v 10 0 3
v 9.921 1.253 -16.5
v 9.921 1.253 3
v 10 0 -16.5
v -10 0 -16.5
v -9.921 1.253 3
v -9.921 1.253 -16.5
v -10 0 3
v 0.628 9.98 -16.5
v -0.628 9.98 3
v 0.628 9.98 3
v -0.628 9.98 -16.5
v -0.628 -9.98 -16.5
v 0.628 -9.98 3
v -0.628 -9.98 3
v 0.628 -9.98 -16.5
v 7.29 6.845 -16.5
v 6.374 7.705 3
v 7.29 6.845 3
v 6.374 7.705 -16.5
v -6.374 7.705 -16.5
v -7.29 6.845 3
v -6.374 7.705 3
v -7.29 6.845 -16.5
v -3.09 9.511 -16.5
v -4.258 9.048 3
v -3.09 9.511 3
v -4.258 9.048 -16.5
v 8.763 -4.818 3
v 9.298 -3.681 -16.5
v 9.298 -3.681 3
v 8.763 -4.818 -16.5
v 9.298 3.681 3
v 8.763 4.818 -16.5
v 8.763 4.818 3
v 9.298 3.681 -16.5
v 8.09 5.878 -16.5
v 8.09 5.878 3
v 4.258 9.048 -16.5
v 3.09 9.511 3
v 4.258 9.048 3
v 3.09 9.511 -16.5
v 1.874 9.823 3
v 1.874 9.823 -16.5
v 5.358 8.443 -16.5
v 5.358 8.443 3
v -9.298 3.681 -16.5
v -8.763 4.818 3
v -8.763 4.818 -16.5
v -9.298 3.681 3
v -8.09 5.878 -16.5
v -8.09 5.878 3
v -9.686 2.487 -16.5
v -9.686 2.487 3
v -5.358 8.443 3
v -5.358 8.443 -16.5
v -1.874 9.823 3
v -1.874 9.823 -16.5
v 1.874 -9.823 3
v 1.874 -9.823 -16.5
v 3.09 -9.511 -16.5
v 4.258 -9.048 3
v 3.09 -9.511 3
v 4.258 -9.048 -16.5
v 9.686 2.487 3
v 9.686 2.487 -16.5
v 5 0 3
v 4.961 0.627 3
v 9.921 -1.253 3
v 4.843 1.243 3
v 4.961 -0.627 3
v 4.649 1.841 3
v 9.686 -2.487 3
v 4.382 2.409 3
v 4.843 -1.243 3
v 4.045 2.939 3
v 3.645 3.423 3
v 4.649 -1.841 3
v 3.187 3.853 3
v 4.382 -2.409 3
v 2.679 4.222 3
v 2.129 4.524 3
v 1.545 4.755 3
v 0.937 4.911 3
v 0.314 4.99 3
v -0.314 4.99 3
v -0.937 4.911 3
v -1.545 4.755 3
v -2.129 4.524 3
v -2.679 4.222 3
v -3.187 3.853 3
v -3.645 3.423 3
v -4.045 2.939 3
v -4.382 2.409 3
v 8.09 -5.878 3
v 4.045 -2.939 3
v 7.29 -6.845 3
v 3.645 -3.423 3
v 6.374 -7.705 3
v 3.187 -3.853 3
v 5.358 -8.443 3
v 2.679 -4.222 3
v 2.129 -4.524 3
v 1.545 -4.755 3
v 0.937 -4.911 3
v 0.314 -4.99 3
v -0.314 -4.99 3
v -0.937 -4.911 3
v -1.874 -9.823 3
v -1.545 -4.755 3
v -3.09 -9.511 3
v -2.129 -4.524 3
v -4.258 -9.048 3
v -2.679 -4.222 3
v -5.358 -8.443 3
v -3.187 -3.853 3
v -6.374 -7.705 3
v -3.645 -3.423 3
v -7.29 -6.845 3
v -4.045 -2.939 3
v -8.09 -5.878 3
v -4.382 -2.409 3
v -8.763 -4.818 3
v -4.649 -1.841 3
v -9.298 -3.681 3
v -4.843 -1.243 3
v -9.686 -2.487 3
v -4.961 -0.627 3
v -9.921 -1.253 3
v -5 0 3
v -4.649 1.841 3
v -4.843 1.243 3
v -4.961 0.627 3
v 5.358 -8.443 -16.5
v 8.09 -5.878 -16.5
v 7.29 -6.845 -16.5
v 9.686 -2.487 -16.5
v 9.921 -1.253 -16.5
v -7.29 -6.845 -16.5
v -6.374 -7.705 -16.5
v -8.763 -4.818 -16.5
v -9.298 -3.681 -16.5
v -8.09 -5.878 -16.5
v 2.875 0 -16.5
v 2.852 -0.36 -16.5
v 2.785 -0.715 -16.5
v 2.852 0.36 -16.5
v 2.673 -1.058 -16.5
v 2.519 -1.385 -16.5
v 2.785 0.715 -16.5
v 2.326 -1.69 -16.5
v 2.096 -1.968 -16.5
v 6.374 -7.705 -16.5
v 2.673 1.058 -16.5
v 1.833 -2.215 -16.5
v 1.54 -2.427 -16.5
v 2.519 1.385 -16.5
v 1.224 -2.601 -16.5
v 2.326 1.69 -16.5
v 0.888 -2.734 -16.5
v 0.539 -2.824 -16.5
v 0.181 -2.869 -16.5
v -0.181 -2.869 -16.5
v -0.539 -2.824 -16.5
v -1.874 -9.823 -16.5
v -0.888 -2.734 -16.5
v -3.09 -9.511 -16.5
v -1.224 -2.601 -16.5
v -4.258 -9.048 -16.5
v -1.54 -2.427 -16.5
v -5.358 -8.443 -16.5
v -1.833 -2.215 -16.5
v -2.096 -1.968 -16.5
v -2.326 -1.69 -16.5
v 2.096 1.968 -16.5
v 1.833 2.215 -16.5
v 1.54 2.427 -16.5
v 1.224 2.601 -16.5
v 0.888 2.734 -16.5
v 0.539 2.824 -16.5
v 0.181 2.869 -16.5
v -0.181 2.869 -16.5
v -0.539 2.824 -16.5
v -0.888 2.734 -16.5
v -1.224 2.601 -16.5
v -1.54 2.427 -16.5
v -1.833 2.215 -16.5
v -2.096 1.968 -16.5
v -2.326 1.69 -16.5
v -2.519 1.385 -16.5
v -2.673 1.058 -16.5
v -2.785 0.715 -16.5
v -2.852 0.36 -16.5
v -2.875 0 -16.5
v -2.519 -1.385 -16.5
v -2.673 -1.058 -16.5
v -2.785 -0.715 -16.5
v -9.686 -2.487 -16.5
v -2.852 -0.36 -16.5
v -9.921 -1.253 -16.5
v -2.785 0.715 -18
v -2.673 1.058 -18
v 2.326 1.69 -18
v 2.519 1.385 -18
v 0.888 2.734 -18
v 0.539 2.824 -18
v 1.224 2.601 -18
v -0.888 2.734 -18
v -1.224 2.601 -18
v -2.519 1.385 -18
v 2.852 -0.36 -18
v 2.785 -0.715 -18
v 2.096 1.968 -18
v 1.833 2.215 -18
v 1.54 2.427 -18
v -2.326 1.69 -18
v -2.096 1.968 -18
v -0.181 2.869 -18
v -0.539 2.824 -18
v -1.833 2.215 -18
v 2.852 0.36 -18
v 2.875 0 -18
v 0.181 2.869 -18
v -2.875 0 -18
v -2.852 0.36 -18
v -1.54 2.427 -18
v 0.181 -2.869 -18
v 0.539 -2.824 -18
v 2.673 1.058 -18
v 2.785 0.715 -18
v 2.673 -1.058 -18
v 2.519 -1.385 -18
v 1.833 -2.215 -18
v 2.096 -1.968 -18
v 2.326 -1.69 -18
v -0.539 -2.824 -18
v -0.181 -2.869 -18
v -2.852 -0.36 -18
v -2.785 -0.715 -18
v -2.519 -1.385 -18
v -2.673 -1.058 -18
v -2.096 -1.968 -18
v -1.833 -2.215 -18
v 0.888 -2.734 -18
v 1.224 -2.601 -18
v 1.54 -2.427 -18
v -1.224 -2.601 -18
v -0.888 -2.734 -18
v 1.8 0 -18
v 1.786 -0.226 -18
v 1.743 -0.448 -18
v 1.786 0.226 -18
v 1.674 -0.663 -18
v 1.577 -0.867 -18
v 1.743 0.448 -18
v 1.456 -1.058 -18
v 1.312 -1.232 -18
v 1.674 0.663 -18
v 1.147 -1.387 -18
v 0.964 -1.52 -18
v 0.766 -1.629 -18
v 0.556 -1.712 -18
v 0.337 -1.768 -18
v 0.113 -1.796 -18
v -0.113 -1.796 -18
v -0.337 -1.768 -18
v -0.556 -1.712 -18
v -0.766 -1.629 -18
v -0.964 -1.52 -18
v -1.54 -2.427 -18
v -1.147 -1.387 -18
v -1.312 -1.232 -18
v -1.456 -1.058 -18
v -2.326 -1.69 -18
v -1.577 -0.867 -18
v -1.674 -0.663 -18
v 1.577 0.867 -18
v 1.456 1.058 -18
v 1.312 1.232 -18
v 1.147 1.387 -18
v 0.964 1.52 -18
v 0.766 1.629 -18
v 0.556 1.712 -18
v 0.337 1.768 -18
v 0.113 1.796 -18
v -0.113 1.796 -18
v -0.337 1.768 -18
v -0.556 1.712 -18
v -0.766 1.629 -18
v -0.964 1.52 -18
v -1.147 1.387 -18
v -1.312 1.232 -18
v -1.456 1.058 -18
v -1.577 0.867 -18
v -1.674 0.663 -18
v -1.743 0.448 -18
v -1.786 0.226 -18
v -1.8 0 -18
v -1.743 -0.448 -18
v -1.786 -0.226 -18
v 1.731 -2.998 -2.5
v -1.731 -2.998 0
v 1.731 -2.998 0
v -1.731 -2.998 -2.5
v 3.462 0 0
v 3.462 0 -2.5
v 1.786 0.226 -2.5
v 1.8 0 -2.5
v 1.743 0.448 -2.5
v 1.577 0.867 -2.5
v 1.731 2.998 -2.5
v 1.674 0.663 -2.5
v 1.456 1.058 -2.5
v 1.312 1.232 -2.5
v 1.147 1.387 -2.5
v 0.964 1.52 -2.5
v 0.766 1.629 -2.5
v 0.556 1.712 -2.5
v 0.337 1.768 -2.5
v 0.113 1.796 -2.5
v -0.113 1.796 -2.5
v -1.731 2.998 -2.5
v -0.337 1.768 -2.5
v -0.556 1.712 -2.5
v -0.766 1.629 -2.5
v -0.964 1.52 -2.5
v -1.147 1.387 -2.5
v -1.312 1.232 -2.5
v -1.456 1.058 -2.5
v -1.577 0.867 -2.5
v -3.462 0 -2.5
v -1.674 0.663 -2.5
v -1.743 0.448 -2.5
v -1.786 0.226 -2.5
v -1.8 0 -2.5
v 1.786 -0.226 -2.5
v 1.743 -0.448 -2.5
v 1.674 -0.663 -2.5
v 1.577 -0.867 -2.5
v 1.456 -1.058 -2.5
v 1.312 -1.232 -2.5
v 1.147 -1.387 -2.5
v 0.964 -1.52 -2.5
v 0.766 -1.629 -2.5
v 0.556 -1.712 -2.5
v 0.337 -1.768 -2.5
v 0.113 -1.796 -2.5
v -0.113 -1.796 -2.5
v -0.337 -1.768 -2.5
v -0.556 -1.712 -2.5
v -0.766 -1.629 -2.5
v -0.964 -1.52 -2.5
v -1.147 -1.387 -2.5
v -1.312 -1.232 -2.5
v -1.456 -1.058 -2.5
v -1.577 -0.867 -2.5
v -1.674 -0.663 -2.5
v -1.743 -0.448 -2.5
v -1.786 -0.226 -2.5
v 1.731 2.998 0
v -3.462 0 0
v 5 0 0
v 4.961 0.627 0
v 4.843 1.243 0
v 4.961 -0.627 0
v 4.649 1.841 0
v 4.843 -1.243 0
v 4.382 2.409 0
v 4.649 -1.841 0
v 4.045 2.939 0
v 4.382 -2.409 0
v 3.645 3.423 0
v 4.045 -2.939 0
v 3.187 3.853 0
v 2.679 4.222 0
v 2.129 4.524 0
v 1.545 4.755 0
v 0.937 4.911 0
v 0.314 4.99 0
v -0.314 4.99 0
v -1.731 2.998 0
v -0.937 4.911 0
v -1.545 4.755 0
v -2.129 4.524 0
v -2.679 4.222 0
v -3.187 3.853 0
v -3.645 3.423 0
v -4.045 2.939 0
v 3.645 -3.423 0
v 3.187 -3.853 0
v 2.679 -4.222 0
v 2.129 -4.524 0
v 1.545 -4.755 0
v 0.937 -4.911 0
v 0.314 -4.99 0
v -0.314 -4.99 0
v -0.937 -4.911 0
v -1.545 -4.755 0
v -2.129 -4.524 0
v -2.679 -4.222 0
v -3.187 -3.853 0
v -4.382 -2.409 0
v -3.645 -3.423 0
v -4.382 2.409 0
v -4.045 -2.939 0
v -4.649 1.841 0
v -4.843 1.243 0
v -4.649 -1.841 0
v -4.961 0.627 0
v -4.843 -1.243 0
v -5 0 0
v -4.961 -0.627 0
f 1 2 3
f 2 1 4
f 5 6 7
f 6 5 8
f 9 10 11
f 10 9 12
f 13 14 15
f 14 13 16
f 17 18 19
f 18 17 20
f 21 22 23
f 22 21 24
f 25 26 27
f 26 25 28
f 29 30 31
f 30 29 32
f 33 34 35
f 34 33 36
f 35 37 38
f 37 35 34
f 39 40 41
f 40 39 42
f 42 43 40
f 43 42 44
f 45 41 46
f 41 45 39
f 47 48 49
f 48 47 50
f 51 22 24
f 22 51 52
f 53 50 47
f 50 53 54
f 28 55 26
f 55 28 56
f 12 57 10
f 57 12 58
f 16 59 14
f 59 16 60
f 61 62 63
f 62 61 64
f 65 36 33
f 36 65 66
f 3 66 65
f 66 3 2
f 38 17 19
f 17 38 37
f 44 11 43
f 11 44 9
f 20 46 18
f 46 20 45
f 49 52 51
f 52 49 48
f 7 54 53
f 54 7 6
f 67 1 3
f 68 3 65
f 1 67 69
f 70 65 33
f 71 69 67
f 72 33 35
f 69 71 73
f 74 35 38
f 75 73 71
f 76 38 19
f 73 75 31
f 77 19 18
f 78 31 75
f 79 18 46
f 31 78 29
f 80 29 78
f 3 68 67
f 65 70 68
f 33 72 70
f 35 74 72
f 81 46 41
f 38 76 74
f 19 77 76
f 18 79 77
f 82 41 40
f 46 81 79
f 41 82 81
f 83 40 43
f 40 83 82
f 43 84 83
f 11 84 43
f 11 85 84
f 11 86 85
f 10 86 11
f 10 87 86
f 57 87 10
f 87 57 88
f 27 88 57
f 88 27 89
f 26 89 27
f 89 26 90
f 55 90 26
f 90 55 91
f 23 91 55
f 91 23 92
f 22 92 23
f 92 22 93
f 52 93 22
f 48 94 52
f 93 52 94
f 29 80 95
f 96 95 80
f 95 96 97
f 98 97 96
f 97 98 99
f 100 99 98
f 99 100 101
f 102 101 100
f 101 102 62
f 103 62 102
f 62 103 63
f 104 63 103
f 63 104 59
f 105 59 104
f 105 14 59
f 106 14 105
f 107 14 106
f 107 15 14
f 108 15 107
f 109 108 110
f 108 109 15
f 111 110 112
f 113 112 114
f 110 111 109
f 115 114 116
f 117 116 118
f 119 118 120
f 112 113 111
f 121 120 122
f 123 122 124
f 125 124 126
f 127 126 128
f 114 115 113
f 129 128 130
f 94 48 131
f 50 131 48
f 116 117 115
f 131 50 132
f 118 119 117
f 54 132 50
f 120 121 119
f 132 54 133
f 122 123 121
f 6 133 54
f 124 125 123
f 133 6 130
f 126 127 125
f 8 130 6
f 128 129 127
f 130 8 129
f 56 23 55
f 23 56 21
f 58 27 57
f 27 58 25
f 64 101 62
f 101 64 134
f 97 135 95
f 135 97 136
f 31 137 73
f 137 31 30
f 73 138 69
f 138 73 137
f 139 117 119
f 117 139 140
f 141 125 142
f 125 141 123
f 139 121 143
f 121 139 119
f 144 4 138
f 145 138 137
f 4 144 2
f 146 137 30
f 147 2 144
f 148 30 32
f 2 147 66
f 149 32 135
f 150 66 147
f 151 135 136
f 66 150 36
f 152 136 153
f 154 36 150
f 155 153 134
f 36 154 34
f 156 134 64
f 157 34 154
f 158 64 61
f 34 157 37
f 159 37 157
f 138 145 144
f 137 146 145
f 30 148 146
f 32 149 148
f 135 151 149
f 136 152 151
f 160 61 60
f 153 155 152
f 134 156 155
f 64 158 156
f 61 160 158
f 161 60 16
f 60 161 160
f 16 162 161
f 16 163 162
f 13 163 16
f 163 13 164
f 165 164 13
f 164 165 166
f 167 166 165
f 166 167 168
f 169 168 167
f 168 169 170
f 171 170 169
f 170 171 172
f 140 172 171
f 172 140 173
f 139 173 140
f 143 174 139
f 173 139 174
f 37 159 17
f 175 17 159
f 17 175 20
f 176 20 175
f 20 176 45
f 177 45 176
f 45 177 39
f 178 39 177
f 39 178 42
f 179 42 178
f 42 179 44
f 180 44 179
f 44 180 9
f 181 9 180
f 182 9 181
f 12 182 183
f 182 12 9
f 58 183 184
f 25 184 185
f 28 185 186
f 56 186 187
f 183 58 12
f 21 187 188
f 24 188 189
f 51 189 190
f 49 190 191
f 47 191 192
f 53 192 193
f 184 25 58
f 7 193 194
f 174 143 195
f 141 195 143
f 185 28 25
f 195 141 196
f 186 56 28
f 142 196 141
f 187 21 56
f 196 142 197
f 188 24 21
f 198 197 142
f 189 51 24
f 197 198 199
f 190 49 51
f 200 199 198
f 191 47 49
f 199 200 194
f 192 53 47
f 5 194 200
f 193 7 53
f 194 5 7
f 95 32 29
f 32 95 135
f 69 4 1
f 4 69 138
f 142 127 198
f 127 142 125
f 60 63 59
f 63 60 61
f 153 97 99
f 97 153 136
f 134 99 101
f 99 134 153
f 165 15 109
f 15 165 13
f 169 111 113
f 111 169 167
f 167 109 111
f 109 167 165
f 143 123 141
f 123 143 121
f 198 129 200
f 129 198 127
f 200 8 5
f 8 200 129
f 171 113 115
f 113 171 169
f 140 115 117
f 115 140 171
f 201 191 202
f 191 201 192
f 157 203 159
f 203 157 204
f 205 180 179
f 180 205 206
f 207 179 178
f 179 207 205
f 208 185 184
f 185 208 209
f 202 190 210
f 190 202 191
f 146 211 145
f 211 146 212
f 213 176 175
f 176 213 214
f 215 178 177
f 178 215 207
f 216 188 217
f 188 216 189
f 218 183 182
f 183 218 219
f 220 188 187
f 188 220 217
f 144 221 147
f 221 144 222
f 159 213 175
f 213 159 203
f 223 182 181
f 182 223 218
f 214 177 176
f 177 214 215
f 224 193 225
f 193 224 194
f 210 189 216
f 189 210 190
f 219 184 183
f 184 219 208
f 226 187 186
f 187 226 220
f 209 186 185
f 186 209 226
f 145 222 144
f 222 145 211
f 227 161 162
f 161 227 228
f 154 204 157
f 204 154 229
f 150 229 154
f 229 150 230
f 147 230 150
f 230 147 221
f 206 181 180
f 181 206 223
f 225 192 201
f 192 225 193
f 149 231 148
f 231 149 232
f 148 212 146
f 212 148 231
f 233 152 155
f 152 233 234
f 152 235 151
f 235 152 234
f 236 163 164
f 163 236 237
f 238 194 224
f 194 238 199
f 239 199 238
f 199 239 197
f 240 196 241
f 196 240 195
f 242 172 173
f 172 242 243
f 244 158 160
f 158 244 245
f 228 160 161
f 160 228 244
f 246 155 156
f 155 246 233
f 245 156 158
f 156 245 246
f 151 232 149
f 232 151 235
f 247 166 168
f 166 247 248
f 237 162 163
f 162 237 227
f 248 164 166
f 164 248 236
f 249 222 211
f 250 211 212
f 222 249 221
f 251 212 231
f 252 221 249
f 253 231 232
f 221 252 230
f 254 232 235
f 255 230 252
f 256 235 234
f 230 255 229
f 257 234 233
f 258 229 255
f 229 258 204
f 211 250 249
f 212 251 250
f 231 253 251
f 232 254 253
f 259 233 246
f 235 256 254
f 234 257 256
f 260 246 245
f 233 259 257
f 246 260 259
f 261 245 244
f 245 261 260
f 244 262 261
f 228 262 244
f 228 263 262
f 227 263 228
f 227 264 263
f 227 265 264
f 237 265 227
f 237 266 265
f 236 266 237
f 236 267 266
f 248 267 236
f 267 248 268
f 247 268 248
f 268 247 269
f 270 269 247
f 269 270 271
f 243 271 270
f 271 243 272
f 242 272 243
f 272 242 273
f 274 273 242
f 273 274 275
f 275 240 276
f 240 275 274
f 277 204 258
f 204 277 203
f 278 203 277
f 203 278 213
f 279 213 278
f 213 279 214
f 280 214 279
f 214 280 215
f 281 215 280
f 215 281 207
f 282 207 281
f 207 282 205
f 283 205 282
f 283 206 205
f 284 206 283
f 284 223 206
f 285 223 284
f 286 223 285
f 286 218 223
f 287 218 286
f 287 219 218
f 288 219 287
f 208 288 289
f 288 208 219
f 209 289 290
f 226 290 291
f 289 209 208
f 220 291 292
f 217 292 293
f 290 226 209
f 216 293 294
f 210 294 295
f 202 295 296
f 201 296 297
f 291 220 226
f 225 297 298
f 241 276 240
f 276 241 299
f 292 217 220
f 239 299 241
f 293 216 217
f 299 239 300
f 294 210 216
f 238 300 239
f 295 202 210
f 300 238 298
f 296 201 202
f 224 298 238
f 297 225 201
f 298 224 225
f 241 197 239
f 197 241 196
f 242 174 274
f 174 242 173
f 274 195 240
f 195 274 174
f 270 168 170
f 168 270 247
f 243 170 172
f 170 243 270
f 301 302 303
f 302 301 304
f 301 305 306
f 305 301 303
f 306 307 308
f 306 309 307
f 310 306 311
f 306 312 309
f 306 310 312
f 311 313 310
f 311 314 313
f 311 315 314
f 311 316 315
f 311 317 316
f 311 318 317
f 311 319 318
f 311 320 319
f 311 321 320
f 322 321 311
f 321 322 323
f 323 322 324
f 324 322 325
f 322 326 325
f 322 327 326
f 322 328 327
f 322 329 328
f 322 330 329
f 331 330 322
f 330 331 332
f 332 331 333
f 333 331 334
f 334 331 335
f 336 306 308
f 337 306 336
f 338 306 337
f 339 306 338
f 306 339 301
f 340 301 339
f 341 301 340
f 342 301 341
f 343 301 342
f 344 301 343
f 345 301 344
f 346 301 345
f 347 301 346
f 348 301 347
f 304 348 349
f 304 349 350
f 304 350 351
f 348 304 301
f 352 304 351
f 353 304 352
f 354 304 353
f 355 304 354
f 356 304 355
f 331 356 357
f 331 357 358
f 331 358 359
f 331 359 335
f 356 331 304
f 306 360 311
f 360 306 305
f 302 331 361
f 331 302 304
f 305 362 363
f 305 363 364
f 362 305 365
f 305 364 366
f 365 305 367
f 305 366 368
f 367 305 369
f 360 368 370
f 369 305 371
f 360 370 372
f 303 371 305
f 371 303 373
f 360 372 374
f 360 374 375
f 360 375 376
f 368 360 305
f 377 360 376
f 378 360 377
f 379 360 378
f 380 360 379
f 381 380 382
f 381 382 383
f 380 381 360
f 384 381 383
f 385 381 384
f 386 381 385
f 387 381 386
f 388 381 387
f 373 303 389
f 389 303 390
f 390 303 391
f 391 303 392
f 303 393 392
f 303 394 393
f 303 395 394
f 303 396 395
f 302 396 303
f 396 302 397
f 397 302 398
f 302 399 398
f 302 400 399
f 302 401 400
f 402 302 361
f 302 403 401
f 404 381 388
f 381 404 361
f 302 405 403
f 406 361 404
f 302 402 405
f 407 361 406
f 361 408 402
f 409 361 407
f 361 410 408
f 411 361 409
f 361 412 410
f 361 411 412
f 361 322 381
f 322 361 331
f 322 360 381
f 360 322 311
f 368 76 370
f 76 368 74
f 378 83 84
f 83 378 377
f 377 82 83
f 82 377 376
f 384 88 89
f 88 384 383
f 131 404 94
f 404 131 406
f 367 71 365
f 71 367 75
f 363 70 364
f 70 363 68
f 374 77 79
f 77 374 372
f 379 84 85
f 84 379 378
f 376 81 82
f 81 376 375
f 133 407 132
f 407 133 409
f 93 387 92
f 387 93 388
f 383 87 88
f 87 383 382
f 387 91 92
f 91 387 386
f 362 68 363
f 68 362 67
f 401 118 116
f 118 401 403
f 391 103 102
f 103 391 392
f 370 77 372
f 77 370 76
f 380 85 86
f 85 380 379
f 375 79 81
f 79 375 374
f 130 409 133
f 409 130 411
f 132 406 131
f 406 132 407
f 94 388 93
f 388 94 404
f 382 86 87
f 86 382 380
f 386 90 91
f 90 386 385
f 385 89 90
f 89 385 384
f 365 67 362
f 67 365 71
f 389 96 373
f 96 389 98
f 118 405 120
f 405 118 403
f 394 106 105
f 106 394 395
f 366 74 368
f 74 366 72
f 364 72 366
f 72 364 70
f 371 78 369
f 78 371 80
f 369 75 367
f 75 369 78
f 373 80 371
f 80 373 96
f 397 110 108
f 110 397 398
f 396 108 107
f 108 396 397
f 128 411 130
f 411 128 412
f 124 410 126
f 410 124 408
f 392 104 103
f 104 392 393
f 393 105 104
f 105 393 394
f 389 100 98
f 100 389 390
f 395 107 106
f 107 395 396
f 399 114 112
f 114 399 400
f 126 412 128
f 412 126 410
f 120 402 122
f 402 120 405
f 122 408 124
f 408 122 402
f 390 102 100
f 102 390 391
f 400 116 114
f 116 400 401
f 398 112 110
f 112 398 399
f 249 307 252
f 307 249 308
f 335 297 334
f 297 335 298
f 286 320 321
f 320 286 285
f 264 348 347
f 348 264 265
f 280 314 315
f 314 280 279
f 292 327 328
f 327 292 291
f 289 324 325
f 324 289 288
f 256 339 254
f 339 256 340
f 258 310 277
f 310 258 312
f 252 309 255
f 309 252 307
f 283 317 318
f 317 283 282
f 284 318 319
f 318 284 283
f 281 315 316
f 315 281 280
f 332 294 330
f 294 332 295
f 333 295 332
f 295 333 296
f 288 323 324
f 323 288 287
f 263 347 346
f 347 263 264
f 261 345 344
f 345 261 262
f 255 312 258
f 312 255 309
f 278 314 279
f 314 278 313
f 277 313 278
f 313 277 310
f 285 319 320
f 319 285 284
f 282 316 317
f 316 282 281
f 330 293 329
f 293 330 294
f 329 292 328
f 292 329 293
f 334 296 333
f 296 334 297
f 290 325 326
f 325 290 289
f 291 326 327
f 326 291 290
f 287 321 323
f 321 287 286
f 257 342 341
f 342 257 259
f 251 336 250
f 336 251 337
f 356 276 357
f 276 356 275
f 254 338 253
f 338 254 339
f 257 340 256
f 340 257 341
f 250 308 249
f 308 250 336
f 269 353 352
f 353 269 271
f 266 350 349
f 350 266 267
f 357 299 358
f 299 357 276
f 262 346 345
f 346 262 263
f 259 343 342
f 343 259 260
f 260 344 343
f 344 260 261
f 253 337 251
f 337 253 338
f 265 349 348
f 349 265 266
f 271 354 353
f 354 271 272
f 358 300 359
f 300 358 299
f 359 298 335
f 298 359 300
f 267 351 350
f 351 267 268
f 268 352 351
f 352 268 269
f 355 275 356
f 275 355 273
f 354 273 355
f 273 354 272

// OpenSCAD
$fn = 50;


difference() {
	union() {
		translate(v = [0, 0, -16.5000000000]) {
			cylinder(h = 19.5000000000, r = 10.0000000000);
		}
		#translate(v = [0, 0, -18.0000000000]) {
			cylinder(h = 18, r = 2.8750000000);
		}
	}
	union() {
		translate(v = [0, 0, 0]) {
			rotate(a = [0, 0, 0]) {
				difference() {
					union() {
						translate(v = [0, 0, -2.5000000000]) {
							linear_extrude(height = 2.5000000000) {
								polygon(points = [[3.4620000000, 0.0000000000], [1.7310000000, 2.9981799479], [-1.7310000000, 2.9981799479], [-3.4620000000, 0.0000000000], [-1.7310000000, -2.9981799479], [1.7310000000, -2.9981799479]]);
							}
						}
					}
					union();
				}
			}
		}
		#cylinder(h = 3, r = 5.0000000000);
		#translate(v = [0, 0, -100.0000000000]) {
			cylinder(h = 200, r = 1.8000000000);
		}
	}
}
